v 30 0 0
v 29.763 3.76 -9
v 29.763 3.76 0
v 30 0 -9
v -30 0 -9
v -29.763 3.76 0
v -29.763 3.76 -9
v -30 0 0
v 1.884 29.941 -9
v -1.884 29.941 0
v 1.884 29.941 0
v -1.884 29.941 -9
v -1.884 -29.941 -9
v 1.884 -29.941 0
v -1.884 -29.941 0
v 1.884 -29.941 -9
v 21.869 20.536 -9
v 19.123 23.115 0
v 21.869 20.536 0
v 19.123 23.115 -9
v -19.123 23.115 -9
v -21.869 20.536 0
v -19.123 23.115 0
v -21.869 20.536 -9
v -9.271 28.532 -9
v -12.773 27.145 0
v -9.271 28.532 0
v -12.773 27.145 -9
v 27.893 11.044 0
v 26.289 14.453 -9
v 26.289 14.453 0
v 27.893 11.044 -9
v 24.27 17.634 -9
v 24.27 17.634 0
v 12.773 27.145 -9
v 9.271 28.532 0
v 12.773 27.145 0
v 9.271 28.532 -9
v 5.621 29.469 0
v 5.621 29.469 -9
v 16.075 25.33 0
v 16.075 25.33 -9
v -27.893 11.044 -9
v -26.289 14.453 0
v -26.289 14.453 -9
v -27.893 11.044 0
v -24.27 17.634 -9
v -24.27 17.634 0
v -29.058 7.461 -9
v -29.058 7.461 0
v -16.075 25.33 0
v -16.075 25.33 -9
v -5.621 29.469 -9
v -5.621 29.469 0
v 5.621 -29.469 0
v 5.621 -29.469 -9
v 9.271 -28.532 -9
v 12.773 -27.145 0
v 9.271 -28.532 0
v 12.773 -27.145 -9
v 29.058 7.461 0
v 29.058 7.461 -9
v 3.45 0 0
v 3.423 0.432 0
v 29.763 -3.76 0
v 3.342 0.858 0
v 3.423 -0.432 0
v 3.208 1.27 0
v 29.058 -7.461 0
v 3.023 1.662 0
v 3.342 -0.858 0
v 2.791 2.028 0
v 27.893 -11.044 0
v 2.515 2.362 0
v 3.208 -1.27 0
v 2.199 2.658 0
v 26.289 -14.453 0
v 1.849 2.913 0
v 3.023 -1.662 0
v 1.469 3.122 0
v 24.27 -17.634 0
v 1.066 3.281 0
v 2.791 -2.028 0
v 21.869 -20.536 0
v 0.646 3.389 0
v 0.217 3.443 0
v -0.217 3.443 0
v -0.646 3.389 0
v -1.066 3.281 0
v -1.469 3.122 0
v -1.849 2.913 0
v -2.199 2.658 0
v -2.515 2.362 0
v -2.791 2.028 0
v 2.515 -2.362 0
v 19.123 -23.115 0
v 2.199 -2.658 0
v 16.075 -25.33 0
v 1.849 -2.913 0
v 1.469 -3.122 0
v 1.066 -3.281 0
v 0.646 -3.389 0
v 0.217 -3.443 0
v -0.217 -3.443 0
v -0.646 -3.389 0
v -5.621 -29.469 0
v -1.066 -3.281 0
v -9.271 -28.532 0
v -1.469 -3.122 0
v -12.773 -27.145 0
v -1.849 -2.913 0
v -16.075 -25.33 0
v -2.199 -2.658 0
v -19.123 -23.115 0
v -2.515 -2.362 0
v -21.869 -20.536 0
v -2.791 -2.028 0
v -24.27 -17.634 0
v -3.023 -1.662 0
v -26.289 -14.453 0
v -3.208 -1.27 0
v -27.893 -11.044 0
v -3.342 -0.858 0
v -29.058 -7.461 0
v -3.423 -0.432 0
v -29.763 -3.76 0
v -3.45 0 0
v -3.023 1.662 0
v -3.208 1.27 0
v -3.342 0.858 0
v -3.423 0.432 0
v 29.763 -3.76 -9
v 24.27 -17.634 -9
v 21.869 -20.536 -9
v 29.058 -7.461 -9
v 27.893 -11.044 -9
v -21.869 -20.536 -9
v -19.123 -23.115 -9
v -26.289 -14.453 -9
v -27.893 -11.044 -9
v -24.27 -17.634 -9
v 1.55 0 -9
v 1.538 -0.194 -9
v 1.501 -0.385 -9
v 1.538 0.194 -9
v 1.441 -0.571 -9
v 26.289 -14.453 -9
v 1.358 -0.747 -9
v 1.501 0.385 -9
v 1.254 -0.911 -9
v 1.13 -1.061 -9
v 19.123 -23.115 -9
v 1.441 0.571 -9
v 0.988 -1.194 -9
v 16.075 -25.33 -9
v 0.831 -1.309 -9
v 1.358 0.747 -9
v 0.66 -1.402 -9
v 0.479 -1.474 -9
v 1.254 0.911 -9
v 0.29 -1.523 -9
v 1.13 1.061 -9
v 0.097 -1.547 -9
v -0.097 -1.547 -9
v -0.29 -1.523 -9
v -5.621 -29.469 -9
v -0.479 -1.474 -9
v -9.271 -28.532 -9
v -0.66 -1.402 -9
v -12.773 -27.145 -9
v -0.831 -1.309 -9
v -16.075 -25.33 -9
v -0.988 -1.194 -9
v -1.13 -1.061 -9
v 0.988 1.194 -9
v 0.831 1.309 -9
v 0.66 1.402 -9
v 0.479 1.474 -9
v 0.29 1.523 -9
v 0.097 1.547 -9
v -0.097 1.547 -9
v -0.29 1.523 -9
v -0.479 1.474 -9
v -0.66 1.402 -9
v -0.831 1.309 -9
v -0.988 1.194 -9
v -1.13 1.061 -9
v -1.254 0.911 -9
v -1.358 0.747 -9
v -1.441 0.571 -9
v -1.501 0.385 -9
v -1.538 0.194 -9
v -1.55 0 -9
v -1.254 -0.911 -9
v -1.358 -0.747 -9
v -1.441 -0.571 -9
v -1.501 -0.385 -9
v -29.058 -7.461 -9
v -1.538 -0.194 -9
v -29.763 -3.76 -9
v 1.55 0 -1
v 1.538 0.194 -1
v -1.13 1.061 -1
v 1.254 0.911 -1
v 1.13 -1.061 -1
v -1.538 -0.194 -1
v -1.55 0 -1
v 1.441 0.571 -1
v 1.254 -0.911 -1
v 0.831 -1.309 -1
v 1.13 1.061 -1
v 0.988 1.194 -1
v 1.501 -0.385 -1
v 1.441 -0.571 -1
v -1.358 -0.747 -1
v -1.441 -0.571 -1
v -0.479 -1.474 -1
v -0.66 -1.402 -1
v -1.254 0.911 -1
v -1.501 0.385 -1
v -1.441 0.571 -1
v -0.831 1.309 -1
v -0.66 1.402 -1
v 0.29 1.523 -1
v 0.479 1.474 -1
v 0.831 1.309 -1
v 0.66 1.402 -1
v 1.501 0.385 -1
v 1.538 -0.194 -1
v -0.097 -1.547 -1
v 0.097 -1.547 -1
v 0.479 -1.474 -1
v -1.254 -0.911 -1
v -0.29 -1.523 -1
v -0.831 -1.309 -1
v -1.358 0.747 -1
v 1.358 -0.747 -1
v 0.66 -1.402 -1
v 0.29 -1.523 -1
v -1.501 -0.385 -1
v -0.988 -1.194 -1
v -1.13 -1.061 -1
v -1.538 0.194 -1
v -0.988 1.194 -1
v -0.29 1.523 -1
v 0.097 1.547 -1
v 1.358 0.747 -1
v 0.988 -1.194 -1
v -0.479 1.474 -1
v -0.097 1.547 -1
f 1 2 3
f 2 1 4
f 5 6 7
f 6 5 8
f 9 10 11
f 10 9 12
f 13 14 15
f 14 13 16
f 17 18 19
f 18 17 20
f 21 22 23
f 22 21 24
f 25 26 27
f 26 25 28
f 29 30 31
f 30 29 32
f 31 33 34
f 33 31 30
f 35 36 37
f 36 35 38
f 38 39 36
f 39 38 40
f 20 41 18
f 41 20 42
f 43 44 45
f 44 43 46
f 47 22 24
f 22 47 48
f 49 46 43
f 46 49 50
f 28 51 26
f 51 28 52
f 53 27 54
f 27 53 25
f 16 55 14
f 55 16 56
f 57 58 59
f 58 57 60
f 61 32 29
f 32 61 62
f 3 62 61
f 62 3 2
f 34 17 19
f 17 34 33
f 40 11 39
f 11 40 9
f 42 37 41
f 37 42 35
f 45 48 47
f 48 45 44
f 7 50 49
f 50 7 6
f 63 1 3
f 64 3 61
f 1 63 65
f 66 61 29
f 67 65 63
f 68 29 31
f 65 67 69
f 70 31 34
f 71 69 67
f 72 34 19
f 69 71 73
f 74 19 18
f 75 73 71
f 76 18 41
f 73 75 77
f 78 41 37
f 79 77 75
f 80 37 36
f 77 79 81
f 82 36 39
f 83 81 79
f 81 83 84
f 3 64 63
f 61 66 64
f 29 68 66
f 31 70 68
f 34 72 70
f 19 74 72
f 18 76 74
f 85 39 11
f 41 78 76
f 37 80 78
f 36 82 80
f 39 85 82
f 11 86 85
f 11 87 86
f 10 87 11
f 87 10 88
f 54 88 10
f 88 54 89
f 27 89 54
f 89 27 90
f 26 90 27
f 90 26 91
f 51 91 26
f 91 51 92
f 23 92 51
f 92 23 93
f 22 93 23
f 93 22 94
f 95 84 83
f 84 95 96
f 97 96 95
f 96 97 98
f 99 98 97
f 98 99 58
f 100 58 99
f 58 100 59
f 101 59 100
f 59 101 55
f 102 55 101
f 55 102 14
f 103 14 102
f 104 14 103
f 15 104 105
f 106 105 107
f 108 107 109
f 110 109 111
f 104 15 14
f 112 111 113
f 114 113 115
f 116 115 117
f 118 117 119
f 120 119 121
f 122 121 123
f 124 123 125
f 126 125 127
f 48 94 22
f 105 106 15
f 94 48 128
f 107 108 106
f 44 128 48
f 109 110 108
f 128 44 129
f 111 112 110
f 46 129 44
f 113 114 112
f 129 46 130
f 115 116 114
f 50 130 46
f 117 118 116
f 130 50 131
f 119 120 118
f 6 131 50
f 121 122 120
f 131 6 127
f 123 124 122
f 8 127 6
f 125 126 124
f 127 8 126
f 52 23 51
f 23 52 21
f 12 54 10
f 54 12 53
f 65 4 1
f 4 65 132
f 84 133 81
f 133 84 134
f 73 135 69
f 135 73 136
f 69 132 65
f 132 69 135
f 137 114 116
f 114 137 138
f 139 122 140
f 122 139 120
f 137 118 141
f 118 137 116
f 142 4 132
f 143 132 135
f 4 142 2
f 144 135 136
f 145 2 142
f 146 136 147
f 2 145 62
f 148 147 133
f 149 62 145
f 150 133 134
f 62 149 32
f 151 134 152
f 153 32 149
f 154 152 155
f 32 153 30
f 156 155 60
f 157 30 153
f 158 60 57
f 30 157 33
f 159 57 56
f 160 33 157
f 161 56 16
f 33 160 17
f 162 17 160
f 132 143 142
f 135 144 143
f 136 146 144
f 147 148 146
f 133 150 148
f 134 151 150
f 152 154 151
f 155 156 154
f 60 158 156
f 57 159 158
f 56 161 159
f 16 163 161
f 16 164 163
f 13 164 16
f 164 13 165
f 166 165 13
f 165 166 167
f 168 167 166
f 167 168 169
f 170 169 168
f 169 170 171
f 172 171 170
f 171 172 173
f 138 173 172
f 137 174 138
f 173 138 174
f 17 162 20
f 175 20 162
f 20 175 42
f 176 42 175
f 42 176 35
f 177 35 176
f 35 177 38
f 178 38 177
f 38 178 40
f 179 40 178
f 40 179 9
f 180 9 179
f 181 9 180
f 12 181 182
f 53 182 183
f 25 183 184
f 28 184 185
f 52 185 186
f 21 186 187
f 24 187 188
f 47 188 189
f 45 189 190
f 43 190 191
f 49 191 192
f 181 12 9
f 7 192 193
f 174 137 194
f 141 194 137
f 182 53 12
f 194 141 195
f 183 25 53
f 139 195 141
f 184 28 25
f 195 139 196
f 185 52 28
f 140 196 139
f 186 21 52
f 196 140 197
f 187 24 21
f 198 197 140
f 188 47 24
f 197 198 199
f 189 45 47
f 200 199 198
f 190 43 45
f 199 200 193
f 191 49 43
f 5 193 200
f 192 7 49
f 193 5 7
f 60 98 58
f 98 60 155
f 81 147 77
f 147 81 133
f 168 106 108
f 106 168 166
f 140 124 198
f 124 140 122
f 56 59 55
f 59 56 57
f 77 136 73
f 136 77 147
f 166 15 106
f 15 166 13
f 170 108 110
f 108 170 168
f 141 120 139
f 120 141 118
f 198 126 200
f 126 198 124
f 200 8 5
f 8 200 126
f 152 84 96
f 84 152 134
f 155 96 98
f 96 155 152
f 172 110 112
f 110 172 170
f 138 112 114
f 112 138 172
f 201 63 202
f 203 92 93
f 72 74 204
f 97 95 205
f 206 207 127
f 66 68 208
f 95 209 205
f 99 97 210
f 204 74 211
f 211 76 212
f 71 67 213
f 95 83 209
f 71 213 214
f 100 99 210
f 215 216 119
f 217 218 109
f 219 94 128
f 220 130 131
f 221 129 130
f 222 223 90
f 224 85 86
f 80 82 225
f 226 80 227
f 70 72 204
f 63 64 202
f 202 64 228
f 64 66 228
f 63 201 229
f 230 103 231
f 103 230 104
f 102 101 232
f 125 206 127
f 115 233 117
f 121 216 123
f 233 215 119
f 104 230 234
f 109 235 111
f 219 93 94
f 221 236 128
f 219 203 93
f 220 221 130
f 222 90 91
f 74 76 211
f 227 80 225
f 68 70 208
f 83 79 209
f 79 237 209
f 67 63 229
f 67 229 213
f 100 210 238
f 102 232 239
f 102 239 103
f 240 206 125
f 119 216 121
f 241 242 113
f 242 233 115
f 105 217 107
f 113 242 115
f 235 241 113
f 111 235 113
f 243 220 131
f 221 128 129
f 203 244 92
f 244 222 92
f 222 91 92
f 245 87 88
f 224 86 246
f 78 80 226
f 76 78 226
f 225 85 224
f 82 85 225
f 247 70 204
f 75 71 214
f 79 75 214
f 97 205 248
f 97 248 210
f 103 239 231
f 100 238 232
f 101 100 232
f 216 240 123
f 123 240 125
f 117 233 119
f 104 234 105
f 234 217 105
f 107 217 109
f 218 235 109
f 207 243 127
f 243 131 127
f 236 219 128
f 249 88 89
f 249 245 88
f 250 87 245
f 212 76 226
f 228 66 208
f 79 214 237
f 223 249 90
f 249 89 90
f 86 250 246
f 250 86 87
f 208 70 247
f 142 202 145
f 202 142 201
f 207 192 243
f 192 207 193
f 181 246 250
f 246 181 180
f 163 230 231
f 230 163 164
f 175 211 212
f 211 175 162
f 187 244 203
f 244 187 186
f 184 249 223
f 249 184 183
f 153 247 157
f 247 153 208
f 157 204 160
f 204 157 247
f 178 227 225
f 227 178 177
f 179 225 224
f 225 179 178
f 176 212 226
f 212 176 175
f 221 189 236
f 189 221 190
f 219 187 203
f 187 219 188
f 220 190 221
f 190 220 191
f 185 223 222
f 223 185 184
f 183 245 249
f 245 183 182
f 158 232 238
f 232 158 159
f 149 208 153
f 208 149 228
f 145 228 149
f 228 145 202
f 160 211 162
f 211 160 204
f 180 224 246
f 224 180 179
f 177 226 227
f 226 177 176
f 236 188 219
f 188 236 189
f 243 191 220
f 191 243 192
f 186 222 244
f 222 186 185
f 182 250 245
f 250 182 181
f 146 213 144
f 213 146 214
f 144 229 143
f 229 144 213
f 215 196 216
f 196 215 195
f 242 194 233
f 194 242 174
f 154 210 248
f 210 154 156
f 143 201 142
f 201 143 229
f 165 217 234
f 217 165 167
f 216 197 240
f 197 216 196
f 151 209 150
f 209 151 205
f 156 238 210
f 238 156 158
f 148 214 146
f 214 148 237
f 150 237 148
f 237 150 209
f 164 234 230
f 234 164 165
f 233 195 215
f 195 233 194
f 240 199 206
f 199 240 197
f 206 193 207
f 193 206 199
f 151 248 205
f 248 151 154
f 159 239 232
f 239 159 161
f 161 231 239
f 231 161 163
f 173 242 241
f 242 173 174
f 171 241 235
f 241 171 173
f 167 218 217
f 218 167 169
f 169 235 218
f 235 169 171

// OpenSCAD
$fn = 50;


difference() {
	union() {
		translate(v = [0, 0, -9.0000000000]) {
			cylinder(h = 9, r = 30.0000000000);
		}
		translate(v = [0, 0, -9.0000000000]) {
			cylinder(h = 9, r = 2.8750000000);
		}
	}
	union() {
		translate(v = [0, 0, 0]) {
			rotate(a = [0, 0, 0]) {
				difference() {
					union() {
						#translate(v = [0, 0, -9.0000000000]) {
							cylinder(h = 9, r = 1.2500000000);
						}
						#translate(v = [0, 0, -1.0000000000]) {
							cylinder(h = 1.0000000000, r1 = 1.5500000000, r2 = 3.4500000000);
						}
						#translate(v = [0, 0, -9.0000000000]) {
							cylinder(h = 9, r = 1.5500000000);
						}
						#translate(v = [0, 0, -9.0000000000]) {
							cylinder(h = 9, r = 1.2500000000);
						}
					}
					union();
				}
			}
		}
	}
}
